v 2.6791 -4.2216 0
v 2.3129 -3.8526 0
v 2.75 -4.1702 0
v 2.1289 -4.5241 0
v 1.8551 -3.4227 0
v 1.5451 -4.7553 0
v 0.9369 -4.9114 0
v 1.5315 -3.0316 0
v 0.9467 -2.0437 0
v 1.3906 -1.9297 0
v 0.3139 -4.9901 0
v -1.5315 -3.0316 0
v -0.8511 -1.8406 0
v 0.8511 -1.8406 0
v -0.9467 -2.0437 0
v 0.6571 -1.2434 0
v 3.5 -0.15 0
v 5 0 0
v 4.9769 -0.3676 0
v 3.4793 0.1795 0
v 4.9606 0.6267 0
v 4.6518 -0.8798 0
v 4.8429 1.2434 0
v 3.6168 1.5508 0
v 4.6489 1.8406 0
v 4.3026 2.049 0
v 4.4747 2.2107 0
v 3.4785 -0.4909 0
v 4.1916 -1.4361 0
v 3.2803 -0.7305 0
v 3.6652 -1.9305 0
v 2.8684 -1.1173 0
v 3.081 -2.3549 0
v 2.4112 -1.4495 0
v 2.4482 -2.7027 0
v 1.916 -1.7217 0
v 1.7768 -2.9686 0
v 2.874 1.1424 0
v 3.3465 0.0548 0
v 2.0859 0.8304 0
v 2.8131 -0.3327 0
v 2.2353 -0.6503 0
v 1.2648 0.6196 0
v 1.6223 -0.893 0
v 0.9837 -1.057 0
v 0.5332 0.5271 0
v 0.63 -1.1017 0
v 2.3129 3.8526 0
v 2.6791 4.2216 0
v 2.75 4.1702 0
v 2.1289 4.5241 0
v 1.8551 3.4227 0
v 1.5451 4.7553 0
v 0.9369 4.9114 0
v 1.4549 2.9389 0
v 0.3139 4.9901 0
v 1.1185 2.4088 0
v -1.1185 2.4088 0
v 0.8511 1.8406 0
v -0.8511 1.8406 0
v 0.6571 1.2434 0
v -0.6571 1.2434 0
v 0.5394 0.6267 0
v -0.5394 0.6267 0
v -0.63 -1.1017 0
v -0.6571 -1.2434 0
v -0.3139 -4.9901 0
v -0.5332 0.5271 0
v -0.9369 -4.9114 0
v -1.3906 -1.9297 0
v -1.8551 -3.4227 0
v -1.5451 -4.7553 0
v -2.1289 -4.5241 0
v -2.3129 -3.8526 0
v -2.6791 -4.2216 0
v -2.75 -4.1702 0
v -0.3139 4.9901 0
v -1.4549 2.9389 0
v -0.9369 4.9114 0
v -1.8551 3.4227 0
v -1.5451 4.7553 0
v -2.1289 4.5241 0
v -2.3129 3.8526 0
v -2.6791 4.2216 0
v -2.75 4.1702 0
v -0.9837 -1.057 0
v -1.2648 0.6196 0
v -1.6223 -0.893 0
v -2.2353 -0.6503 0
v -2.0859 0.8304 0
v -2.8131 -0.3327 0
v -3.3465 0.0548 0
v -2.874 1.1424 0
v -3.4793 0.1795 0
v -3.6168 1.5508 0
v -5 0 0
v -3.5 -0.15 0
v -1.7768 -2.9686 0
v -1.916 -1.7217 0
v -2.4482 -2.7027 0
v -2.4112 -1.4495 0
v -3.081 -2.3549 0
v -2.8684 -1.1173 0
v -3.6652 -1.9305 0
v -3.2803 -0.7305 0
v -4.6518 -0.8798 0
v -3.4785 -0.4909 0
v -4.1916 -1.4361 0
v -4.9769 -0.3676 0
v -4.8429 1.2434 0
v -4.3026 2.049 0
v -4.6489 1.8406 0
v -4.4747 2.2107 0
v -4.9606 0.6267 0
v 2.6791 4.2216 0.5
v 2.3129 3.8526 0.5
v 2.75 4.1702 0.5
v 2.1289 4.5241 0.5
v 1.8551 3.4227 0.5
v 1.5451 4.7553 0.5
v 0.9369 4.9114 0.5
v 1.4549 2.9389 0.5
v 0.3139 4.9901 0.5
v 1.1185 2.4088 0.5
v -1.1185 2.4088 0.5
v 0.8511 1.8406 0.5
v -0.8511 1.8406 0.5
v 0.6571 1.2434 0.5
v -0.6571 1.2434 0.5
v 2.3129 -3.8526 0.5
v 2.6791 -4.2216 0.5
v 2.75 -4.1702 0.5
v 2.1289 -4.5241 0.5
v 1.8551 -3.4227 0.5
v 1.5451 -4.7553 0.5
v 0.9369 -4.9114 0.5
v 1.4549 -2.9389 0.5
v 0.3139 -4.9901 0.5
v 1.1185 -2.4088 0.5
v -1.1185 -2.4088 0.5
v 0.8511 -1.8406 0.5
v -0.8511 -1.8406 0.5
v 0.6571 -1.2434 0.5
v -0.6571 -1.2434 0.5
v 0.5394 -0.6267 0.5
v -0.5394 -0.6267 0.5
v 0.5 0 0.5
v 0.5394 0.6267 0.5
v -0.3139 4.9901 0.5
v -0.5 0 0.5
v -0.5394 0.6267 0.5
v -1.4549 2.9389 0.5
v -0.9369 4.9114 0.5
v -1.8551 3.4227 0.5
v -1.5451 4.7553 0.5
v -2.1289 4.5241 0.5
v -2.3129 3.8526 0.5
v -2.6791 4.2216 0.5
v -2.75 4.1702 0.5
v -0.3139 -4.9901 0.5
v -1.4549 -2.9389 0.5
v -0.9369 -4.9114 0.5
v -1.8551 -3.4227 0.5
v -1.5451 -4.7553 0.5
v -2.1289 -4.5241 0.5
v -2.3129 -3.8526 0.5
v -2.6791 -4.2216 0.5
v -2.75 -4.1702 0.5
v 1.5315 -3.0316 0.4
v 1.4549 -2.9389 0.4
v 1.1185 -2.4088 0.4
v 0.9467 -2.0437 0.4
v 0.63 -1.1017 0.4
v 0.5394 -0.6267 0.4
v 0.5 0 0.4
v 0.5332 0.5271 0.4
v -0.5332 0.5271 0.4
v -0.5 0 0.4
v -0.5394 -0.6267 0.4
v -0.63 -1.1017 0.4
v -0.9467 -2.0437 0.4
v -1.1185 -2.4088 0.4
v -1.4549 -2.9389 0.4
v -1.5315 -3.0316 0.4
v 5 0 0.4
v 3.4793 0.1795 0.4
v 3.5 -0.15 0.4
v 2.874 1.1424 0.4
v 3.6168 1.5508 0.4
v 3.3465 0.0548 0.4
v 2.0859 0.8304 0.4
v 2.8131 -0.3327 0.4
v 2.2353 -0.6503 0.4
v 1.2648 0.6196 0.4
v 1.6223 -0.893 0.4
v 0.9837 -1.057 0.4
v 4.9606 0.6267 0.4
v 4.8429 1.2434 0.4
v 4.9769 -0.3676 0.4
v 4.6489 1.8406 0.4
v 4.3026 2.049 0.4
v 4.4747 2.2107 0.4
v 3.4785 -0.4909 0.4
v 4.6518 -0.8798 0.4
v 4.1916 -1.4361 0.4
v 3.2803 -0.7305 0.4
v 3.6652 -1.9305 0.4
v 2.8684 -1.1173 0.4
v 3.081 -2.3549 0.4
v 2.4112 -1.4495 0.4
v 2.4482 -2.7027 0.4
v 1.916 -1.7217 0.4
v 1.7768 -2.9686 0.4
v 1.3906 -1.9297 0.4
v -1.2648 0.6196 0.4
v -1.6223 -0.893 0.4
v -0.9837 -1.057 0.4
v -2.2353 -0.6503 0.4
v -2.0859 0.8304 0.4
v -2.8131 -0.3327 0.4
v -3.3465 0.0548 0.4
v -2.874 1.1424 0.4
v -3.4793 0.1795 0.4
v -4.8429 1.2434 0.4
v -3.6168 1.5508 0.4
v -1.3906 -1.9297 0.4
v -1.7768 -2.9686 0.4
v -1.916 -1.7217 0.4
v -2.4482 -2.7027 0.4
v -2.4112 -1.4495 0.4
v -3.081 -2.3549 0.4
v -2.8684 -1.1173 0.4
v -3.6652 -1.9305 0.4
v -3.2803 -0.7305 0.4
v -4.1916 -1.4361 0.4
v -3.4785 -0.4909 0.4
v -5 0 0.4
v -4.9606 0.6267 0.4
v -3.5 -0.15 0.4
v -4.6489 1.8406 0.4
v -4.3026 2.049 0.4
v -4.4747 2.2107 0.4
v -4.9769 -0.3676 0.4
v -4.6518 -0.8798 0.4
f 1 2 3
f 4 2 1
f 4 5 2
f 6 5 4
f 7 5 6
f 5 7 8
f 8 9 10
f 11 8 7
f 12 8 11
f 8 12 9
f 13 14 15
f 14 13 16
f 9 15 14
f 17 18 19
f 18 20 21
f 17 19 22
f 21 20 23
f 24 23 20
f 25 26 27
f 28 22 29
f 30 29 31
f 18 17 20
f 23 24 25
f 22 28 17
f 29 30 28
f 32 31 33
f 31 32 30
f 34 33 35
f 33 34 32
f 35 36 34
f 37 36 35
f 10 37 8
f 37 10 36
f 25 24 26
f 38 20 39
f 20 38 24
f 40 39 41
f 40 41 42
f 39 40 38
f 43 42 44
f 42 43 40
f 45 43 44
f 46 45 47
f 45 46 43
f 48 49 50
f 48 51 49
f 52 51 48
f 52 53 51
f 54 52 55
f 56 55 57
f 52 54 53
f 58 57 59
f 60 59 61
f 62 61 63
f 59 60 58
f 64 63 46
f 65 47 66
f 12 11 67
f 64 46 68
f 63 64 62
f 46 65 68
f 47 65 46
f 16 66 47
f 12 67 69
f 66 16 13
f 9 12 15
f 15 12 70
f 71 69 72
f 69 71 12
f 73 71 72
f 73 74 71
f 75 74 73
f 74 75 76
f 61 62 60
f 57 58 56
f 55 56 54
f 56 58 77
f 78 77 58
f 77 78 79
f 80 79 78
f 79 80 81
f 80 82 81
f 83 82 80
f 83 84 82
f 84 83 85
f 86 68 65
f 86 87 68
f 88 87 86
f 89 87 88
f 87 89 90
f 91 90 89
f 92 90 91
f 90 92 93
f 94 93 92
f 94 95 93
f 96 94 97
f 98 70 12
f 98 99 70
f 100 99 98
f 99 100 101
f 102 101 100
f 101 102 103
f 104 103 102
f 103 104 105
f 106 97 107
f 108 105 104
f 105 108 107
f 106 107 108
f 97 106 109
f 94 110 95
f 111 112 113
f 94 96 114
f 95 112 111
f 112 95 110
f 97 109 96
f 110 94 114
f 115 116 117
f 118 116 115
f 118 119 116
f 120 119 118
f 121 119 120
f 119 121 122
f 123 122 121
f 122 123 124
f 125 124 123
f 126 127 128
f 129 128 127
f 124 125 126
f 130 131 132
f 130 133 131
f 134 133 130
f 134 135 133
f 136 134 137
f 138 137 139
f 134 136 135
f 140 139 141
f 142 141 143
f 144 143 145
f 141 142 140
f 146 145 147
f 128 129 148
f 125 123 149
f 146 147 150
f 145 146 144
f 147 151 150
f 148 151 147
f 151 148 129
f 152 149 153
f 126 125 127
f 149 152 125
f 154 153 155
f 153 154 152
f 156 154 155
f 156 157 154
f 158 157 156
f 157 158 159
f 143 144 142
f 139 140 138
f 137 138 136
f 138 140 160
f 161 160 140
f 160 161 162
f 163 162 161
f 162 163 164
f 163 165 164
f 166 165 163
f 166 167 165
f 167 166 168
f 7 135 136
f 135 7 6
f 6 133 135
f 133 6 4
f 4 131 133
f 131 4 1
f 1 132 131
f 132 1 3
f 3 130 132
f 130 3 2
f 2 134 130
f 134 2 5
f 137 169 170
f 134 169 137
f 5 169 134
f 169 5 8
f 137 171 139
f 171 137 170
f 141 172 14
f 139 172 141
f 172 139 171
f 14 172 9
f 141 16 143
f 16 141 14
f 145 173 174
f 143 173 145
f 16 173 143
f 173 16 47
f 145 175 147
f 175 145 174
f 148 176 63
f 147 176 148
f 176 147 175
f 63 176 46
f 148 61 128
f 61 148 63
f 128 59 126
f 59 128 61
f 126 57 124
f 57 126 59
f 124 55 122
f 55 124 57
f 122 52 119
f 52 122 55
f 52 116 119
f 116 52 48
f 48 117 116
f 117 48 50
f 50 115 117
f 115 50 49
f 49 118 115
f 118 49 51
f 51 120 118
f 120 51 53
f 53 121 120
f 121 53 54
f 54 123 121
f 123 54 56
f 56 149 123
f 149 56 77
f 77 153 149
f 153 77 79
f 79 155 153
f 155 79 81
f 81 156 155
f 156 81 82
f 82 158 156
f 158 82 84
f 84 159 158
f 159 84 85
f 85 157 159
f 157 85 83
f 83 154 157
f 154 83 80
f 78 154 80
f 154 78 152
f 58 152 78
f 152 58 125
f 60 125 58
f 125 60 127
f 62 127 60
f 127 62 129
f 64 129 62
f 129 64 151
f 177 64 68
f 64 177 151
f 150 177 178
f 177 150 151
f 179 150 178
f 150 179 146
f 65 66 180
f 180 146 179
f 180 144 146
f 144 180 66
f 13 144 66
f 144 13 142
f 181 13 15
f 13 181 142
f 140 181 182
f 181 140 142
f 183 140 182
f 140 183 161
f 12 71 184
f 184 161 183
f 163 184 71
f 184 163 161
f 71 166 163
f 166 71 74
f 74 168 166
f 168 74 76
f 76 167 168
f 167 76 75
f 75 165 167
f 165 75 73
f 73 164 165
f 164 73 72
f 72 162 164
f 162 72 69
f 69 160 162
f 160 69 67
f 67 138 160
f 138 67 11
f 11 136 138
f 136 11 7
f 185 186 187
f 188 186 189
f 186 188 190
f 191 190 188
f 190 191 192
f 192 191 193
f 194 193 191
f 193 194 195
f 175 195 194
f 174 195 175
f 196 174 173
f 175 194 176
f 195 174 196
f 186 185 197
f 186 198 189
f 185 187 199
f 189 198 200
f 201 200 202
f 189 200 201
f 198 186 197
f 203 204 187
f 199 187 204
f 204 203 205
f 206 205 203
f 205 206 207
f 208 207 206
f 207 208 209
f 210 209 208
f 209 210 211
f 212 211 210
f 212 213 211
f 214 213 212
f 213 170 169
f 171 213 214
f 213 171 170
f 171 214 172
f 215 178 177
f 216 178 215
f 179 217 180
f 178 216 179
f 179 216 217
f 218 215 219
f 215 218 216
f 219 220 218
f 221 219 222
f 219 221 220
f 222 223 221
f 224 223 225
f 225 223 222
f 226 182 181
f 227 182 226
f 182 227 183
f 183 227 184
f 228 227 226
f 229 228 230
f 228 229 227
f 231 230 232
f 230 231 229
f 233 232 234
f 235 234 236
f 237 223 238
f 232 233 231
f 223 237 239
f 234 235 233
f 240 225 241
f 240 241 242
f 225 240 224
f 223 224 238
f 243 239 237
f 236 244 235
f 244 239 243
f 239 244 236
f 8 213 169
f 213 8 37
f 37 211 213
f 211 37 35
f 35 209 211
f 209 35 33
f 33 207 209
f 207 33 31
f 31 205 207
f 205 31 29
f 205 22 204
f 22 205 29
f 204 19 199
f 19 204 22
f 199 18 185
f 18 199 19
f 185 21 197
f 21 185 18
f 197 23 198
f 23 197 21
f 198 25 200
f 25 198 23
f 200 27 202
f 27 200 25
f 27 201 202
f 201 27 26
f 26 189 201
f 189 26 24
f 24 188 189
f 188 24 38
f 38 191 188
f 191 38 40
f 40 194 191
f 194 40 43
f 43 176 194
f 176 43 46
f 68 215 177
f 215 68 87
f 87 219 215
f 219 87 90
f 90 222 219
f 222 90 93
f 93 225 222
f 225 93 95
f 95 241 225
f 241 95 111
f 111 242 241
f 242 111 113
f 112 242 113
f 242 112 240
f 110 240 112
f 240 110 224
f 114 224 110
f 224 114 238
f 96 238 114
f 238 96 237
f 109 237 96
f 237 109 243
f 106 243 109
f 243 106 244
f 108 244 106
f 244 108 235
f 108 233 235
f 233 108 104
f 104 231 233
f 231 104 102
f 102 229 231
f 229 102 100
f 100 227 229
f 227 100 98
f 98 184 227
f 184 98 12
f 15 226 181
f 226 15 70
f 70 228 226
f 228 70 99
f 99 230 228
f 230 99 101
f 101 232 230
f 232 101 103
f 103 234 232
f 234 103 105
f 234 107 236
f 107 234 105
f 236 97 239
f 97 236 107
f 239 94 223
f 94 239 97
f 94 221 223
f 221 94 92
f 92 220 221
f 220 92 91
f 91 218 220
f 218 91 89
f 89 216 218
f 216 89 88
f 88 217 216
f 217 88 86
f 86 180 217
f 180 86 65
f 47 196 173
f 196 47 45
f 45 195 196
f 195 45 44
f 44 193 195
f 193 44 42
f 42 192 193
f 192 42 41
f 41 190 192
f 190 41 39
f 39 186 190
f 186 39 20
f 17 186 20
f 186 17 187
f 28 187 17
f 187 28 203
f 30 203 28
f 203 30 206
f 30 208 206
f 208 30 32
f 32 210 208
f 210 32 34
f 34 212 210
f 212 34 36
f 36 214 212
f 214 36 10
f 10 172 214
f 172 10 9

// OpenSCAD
// Wizard Sigil of Iolo Davens
//

$fn=50;

module circle_cutter(s) {
  difference(){
    circle(s*5);
    circle(s); 
  }
}

module epaulet(s) {
  difference() {
    translate([-s*1.25, 0, 0])  
    circle(s);
    circle_cutter(s);
    //translate([0, -s * .5, 0])
    //circle_cutter(s);
    translate([0, s*.2, 0])
    circle(s*1.1);
  }
}

module i(s){
  linear_extrude(.5) {
    color("#1255AA")
    translate([0,0,.1])
    difference() {
      circle(s);
      translate([-s*1.10, 0,0]) circle(s);
      translate([+s*1.10, 0,0]) circle(s);
    }
  }
}

module d(s) {
  //translate([0,s*.1,0]) // hmmm... 
  //scale([0.9, 0.9, 1])
  //color("#435579") 
  linear_extrude(.4) {
    difference() {
      translate([0,s/2, 0]) difference() {
        circle(s*1.15);
          translate([0, +s*.95,,0]) circle(s*1.35);
          //translate([0, -s*1.25,,0]) circle(s);
        }
        circle_cutter(s);
      
      // cutout
      translate([0,s*.32, 0])
      difference() {
        translate([0,s*.15, 0])
        circle(s*0.9);
        translate([0,s*.5, 0]) circle(s*1.05);
        translate([0,-s*.35, 0])
        difference() {
          circle(s*3);
          circle(s*.7);
        }
      }
    }
  }
}

module sigil(s) {
  d(s);
  i(s);
  
  // epaulets
  //epaulet(s);
  //rotate([0,180,0]) epaulet(s);
}

sigil(5);
